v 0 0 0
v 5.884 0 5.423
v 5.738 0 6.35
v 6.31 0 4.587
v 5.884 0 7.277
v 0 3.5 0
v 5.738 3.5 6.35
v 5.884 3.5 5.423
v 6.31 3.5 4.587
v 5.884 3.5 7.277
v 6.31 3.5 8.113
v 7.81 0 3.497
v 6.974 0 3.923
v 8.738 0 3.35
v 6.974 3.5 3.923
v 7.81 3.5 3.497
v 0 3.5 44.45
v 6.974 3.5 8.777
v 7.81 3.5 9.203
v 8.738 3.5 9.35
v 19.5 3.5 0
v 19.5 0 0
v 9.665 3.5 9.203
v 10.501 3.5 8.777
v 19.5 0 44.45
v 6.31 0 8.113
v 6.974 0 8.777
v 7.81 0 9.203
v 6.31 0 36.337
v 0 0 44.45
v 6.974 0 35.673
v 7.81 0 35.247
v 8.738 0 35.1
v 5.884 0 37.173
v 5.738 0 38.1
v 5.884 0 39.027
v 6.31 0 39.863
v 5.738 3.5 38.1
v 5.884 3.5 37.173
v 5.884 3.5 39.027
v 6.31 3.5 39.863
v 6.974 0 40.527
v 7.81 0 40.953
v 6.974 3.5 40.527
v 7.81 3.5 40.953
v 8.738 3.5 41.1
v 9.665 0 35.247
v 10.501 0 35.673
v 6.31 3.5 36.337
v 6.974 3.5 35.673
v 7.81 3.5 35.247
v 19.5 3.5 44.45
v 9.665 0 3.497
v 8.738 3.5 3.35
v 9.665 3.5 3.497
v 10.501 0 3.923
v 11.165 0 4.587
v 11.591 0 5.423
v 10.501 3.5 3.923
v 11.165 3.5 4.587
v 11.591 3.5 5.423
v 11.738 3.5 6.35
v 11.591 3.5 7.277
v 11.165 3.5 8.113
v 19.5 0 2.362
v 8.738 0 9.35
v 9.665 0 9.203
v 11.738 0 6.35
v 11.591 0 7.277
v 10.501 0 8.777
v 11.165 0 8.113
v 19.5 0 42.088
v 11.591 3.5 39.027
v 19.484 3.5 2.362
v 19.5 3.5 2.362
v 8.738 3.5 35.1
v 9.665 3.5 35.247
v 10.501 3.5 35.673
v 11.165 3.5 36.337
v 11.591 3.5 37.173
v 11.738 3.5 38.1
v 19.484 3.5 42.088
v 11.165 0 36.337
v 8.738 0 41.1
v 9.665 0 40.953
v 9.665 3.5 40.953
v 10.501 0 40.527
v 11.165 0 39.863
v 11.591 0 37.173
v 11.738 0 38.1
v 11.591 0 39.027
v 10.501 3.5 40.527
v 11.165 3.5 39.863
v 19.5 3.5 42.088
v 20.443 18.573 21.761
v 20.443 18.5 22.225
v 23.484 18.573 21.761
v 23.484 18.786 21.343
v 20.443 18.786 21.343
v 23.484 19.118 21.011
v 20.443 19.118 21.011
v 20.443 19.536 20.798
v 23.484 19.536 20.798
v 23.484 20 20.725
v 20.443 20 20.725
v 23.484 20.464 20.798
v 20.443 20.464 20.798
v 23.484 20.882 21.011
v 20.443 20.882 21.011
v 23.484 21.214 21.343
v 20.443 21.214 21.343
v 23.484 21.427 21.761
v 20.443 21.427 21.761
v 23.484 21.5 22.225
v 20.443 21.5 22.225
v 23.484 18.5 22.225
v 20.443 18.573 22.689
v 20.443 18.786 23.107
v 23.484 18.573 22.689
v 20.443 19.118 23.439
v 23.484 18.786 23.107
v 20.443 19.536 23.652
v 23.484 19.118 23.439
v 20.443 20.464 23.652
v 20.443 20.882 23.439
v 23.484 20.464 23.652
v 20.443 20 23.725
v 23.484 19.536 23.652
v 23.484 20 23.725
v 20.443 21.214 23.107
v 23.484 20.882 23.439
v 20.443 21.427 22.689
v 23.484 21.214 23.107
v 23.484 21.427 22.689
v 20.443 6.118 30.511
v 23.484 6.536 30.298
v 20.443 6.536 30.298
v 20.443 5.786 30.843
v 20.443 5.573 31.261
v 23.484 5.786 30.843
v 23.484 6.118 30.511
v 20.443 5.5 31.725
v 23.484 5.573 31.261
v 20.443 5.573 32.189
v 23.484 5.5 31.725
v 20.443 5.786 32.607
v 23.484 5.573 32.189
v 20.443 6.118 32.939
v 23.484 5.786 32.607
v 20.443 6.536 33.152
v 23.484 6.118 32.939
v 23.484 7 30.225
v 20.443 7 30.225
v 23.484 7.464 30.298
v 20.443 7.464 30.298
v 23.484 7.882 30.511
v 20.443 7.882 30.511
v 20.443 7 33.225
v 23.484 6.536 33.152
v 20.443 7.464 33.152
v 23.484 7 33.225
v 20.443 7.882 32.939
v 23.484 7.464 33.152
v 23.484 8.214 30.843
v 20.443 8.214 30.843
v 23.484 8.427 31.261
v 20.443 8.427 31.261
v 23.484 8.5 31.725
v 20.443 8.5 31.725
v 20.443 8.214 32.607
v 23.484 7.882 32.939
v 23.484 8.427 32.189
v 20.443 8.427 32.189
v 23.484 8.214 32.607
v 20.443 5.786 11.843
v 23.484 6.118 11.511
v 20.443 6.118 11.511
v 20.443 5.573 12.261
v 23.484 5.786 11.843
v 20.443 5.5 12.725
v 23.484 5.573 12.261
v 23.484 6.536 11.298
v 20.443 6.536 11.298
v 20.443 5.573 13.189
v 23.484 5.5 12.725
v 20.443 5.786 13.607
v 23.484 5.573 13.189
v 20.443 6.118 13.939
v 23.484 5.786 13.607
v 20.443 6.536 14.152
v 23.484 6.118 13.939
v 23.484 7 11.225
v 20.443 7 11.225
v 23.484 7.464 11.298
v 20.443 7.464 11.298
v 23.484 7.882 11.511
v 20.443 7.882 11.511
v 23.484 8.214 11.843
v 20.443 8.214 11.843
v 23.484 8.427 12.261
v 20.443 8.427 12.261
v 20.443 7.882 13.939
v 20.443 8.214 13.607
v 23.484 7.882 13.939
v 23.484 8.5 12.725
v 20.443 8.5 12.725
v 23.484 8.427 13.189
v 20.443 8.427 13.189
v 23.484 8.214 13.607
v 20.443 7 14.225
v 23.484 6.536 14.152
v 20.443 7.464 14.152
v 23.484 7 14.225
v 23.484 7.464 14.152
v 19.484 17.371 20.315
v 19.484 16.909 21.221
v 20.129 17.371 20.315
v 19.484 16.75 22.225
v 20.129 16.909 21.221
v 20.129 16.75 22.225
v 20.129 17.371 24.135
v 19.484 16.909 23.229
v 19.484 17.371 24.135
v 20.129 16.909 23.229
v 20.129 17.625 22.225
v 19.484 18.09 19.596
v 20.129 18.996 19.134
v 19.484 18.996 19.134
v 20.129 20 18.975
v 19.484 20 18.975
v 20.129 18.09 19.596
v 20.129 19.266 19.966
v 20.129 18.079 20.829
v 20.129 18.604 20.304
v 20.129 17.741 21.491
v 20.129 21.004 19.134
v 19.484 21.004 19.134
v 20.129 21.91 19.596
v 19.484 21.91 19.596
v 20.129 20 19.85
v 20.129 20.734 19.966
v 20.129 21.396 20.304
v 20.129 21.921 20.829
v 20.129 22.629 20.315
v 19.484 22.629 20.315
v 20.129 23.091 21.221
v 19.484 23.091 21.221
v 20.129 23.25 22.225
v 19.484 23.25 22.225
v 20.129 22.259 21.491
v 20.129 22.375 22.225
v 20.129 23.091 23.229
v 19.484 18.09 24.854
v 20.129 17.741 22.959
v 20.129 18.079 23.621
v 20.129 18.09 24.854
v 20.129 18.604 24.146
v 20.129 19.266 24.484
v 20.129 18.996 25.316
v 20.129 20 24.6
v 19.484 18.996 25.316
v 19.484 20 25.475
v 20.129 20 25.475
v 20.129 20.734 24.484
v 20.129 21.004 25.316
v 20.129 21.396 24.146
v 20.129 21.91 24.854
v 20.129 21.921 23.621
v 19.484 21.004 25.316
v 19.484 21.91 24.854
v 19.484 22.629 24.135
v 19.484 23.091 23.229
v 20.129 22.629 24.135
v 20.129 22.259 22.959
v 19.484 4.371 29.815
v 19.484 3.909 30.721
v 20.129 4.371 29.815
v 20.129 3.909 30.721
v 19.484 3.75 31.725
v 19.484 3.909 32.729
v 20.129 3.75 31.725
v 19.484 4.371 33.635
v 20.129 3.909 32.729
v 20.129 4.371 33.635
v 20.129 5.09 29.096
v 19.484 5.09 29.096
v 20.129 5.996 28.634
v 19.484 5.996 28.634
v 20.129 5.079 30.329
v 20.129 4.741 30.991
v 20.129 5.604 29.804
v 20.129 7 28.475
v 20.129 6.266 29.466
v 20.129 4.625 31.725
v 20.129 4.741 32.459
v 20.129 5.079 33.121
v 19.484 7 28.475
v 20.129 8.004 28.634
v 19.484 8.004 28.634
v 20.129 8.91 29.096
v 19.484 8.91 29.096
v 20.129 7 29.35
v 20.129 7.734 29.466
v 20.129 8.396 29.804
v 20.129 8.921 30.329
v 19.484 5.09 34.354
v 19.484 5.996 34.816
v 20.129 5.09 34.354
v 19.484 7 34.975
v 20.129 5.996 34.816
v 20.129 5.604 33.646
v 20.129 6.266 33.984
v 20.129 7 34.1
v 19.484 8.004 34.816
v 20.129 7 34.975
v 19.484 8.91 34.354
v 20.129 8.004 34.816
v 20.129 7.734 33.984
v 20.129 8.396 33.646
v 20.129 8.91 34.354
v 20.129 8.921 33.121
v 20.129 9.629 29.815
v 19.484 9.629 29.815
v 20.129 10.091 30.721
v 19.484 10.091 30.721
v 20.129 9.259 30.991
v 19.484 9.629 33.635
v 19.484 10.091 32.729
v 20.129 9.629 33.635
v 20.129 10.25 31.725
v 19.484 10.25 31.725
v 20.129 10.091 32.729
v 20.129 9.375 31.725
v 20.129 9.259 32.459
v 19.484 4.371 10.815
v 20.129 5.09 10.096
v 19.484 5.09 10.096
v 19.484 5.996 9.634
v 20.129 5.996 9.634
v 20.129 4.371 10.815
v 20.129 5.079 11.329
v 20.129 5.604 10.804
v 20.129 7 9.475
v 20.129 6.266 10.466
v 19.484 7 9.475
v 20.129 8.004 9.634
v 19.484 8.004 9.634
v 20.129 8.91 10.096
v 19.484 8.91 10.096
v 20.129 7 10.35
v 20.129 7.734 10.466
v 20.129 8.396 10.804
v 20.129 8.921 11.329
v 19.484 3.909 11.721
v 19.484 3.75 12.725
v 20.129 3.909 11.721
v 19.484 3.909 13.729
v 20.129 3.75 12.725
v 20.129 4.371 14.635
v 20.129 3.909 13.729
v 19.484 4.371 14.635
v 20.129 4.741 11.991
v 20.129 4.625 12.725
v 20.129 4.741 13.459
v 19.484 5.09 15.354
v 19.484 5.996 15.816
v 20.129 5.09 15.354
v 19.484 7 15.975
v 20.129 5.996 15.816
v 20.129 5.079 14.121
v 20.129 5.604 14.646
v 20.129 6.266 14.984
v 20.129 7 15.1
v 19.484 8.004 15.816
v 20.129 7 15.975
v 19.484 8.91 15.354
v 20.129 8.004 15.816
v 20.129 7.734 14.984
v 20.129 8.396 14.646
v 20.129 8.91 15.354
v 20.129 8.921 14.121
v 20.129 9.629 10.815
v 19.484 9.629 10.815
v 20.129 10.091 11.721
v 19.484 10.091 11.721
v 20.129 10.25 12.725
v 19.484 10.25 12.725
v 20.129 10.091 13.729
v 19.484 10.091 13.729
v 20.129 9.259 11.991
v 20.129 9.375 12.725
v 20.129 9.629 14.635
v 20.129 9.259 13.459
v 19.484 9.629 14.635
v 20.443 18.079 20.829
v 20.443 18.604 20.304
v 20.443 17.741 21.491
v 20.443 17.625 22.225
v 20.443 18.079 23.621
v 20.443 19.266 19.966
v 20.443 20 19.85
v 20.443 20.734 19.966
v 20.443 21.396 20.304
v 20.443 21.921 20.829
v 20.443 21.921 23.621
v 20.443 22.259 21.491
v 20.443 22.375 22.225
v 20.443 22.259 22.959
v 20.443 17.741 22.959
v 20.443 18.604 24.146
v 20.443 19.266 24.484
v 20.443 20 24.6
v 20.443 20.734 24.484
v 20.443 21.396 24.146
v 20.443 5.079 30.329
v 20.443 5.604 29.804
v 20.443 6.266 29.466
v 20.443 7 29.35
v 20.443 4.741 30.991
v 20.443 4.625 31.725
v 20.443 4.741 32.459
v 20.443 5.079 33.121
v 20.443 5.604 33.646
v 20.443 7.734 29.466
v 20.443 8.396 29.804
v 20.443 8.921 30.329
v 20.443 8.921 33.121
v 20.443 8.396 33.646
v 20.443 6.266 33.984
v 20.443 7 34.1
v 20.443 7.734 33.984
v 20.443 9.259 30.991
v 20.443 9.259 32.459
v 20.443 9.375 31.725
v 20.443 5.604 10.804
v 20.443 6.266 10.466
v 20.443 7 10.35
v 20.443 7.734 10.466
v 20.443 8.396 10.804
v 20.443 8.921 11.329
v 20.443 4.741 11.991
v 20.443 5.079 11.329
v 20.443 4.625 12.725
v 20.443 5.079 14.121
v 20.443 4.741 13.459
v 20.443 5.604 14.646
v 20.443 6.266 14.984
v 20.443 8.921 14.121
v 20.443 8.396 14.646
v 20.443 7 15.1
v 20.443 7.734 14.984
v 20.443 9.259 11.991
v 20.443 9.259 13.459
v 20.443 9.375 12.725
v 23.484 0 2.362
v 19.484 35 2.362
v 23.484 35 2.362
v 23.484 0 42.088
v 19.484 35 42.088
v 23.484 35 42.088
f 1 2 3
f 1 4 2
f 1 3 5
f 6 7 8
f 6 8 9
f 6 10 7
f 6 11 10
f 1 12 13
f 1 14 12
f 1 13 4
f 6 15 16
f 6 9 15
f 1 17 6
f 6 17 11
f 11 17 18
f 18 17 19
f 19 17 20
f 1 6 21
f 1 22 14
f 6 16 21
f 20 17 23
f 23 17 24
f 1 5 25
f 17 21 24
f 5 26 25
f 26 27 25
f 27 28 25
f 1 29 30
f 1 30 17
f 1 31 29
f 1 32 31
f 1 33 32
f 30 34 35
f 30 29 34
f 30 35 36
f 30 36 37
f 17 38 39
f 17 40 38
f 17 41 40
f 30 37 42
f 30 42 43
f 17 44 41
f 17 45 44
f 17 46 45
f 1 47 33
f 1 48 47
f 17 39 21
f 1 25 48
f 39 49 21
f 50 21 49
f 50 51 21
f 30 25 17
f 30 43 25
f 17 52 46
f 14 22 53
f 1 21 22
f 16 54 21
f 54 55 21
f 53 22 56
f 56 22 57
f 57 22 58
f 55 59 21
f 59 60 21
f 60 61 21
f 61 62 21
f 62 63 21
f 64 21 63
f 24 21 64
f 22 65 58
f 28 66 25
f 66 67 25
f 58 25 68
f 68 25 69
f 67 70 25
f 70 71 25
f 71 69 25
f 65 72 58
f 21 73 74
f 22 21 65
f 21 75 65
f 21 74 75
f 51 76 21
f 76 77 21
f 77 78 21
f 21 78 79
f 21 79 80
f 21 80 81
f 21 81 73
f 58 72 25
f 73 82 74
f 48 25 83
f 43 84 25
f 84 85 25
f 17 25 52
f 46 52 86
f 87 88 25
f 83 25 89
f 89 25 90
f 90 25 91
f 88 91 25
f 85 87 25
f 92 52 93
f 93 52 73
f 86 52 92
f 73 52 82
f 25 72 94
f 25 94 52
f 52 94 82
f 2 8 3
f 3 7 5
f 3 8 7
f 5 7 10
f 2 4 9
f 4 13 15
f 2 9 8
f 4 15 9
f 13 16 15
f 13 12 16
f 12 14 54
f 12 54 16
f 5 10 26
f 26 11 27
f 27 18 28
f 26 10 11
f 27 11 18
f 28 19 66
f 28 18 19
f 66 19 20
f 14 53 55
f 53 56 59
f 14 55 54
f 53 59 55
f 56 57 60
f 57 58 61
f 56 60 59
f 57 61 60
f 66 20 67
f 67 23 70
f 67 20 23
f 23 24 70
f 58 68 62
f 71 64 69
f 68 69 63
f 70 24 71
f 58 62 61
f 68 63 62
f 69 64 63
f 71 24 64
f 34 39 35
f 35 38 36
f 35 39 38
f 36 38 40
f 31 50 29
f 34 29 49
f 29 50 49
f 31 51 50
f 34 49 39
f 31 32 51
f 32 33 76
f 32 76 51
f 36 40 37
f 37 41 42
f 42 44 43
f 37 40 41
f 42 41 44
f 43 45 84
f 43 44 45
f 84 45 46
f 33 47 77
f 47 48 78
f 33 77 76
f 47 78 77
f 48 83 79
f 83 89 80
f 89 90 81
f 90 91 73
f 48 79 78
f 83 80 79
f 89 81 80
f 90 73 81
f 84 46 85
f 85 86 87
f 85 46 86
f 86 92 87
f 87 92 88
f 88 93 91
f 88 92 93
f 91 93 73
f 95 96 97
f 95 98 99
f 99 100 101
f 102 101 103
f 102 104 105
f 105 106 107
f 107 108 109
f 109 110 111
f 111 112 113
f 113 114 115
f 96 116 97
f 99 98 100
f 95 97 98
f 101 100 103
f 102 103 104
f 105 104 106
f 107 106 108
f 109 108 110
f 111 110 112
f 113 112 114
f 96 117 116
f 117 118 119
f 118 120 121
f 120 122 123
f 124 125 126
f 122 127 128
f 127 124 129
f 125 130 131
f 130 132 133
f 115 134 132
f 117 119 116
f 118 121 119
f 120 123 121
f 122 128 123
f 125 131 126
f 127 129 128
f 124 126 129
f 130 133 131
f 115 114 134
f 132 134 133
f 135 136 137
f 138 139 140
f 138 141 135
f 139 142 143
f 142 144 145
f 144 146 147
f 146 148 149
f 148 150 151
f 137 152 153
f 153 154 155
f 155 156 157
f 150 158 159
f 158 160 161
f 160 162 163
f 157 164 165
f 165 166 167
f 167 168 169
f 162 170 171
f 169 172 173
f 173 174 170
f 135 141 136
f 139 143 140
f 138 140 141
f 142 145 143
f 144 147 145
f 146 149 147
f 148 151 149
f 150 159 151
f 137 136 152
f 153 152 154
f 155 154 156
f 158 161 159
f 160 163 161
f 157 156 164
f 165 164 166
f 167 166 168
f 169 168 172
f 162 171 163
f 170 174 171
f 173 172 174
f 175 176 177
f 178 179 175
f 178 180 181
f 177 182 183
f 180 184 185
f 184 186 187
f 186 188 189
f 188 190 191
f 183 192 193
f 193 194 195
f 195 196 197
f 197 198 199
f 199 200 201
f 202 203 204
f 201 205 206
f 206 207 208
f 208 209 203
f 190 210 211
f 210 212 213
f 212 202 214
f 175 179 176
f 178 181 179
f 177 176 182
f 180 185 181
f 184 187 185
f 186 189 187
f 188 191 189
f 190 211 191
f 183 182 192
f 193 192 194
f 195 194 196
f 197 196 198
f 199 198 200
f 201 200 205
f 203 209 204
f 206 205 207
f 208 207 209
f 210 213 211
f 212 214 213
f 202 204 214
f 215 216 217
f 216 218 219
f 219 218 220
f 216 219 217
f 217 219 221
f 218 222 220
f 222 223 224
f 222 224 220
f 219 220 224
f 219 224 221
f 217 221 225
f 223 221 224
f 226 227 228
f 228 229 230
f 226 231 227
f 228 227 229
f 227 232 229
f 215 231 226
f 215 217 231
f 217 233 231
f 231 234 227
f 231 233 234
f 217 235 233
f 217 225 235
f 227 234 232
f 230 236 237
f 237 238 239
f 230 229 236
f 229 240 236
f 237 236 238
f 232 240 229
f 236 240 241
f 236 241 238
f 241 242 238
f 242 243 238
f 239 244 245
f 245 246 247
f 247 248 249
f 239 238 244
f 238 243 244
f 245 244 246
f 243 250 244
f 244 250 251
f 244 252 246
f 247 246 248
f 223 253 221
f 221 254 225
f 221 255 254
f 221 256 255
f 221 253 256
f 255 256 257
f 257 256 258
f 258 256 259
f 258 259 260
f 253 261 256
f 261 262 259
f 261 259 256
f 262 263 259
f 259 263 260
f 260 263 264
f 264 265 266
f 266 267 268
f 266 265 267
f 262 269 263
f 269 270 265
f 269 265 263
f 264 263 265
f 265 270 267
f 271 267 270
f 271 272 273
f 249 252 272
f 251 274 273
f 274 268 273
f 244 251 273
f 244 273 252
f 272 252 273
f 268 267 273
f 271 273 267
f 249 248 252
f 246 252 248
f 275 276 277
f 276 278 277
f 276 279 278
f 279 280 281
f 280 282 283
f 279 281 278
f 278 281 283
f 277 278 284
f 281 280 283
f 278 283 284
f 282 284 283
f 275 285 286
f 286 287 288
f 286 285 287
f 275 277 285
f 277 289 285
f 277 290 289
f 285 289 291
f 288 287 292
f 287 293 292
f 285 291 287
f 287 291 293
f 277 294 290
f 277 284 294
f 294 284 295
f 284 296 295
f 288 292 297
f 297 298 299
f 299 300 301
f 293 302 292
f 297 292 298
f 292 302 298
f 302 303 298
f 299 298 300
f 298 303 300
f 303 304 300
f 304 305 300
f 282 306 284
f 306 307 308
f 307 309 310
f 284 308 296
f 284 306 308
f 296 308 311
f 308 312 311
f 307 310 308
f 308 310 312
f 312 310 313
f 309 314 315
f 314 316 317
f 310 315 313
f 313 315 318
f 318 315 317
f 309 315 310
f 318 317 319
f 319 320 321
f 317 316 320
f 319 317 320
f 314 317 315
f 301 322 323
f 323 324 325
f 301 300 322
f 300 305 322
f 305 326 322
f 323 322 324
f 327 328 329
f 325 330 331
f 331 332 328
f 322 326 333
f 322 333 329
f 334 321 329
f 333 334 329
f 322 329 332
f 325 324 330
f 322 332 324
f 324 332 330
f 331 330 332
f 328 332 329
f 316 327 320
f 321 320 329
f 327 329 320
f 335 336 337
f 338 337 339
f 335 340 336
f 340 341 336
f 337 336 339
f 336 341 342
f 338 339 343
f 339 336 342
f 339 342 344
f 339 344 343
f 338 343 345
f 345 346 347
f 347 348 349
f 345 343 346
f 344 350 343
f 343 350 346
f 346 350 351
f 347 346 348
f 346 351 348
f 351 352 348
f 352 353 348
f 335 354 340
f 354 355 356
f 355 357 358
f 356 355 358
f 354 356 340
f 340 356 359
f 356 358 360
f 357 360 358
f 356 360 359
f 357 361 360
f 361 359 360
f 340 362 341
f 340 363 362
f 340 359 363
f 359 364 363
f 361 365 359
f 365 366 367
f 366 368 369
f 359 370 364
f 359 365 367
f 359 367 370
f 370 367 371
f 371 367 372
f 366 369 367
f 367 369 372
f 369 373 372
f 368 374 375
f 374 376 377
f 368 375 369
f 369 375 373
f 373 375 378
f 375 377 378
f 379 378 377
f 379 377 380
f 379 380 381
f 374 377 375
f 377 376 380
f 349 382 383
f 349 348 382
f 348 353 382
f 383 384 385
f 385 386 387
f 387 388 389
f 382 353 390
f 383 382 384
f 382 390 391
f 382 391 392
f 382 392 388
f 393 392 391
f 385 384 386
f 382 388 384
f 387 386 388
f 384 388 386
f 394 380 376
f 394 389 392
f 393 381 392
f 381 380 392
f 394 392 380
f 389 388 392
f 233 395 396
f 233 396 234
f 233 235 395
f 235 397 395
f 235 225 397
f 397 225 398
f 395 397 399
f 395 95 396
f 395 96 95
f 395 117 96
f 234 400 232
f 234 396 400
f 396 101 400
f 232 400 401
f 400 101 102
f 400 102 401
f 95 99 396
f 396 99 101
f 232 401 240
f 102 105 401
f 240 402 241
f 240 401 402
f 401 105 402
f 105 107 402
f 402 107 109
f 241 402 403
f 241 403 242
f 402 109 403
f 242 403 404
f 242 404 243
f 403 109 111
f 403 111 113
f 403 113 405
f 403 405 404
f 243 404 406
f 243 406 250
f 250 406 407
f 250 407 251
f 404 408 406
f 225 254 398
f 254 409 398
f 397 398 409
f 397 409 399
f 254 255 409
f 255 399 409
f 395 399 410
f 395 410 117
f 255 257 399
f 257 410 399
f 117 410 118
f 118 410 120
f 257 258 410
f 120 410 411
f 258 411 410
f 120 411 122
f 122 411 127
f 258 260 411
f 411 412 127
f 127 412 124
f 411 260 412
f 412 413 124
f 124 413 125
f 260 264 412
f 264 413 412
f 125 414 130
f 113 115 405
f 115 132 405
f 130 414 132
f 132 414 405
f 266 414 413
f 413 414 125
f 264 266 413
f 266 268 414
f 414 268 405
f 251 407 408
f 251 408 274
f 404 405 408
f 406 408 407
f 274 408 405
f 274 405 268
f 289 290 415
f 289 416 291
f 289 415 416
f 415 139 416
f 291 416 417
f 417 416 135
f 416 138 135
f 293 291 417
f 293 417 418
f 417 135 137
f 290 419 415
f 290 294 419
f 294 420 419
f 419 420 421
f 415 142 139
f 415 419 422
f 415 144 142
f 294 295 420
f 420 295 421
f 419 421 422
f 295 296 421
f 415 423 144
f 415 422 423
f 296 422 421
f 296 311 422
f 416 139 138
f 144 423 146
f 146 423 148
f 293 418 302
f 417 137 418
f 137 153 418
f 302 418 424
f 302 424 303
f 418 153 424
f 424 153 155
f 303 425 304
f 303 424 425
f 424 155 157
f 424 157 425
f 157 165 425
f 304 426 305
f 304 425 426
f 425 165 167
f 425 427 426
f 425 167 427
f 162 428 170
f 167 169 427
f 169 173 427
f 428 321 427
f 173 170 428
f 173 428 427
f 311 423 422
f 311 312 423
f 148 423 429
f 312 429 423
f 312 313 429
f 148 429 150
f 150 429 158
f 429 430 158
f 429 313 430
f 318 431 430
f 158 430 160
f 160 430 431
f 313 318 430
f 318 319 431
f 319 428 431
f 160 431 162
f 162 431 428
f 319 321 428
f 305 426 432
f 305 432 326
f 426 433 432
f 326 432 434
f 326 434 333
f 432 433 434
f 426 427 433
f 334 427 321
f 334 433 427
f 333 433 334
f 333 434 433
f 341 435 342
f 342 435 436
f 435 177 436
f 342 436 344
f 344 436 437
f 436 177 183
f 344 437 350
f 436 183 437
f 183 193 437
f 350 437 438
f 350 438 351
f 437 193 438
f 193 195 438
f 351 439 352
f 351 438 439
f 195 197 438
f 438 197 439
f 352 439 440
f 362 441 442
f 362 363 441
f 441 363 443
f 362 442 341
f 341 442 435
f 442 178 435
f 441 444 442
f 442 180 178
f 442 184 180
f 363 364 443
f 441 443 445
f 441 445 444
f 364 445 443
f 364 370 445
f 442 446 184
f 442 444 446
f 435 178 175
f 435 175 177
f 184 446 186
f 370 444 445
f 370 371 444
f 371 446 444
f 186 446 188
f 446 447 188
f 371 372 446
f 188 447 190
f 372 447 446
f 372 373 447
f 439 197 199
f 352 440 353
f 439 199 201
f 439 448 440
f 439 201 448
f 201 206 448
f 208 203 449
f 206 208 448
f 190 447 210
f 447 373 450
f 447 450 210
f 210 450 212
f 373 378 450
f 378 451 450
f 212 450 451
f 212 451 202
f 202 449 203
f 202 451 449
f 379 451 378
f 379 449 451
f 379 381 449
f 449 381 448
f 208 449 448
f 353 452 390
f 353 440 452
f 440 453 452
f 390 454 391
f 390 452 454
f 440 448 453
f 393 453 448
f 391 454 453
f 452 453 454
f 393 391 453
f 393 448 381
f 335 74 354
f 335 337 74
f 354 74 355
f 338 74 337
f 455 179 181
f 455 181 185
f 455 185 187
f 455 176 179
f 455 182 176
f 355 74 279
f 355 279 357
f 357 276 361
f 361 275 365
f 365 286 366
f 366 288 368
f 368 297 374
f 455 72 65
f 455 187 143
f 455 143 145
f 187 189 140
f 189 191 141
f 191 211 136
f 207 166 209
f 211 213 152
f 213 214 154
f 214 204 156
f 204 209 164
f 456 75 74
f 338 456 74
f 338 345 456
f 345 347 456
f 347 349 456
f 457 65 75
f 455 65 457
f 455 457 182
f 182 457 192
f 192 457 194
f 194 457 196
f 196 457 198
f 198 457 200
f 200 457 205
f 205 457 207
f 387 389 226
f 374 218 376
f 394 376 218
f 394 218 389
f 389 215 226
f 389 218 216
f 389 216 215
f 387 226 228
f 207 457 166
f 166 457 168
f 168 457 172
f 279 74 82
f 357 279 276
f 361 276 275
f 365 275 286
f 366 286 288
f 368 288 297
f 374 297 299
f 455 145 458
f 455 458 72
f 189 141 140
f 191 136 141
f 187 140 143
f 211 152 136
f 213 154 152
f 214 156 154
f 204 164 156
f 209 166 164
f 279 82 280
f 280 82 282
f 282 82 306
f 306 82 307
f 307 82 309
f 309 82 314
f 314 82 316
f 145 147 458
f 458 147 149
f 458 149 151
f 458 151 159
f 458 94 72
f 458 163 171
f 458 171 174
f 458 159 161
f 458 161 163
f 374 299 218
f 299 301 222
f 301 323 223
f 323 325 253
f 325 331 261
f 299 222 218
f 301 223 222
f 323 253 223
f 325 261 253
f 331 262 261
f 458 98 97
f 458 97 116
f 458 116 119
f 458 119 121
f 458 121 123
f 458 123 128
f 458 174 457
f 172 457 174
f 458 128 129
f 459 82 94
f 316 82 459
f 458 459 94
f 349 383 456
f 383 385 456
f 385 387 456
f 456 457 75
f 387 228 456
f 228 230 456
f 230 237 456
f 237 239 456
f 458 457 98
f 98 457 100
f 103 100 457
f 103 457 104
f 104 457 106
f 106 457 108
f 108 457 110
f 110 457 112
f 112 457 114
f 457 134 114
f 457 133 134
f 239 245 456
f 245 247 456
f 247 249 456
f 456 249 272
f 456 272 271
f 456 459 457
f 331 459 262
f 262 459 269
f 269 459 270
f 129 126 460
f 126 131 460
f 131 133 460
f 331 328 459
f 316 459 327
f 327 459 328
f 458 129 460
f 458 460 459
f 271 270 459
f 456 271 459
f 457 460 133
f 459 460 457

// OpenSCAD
// file: mounting.scad
e = 1/64;

slot_width = 4.0;
L_leg_length = 11; // possibly 12
extent_length = 14.0;

center_diameter = 8.5;


module ridge_outline () {

  both_inset = 0.5;
  inset = both_inset / 2;
  ridge_width = slot_width - 0.5;
  half_ridge_width = ridge_width / 2;

  L_vert_to_horiz_start = 6.5; // measured is 7.0

  ridge_center_radius = 5.0 / 2;

  rotate([0, 0, 180])
  union () {
    square([ridge_width, L_vert_to_horiz_start + half_ridge_width]);
    translate([half_ridge_width, L_vert_to_horiz_start + half_ridge_width]) {
      circle(d = ridge_width, $fn = 48);
    }

    square([L_vert_to_horiz_start + half_ridge_width, ridge_width]);
    translate([L_vert_to_horiz_start + half_ridge_width, half_ridge_width]) {
      circle(d = ridge_width, $fn = 48);
    }

    translate([-(ridge_center_radius - ridge_width) + both_inset,
               -(ridge_center_radius - ridge_width) + both_inset]) {
      circle(r = ridge_center_radius, $fn = 48);
    }
  }
}

module generate_ridge (height = 2.0 + 1.5) {

  linear_extrude(h = height) {
    ridge_outline();
  }

}


if (!true) {
  //ridge_outline();
  generate_ridge(height = 2.0 + 1.5 + 0.5);
 } else {

  h = 3;
  translate ([-3/2,-3/2,0]) cube([10 + 3, 10 + 3, h]);
  translate ([10, 10, h-e]) { generate_ridge(height = 2.0 + 1.5 + 0.5); }

 }
// main file
use <mounting.scad>

show_assembly = !true;

e = 1/64;

//universal_customized_stl = "YS25_0802_10inch_rack.stl";
universal_customized_stl = "universal_10inch_rack-xikestor8310.stl";

width = 207;
depth = 136;
height = 35;

rackmount_height = 44.45; // 1U

mount_front_screws__from_front = 7.0;
mount_front_screws__from_bottom = 8.0;
mount_front_screws__spacing = 19.0;

mount_front_screws__hole1_height = (1/2) * (rackmount_height - height) + mount_front_screws__from_bottom;
mount_front_screws__hole2_height = mount_front_screws__hole1_height + mount_front_screws__spacing;

mount_back_screw__from_front = 20.0;
mount_back_screw__from_bottom = height / 2;
mount_back_screw__height = (1/2) * (rackmount_height - height) + mount_back_screw__from_bottom;

mount_height = height + (1/2)*(rackmount_height - height);
//mount_height = height;

mount_height__from_1U_bottom = (1/2)*(rackmount_height - mount_height);
mount_length = 30.0 + 5.0;

ear_face_thickness = 3.5;
ear_mount_thickness = 4.0;

/* [Hidden] */

rackmount_hole_diameter = 6;
rackmount_hole_spacing_across = 236.525;
rackmount_opening_spacing = 222.25;
rackmount_hole_1_height = 12.7 / 2;
rackmount_hole_2_height = rackmount_height - rackmount_hole_1_height;
rackmount_strip_width = 15.875;
rackmount__end_to_end = 254.0;

rail_hole_diameter = 6.0;
rail_hole_center_inset = (1/2) * (rackmount__end_to_end - rackmount_hole_spacing_across);

assert((rackmount_strip_width + rackmount_opening_spacing + rackmount_strip_width ) == rackmount__end_to_end, "components do not sum to Total .");



ear_overlap_opening = (1/2) * (rackmount_opening_spacing - width) ;
ear_face_length = rackmount_strip_width + ear_overlap_opening - ear_mount_thickness;



// STL offsets

module single_look() {
  %sks8310();
  //customized_universal();
}

module sks8310 () {
  translate([width, 0, 0]) rotate ([-90, 180, 0])
    difference() {
    //color("darkblue")
    cube ([width, depth, height]);

  }
}

module mount_screw_hole (diameter = 3, height = 10) {
  $fn = 20;
  r1 = diameter/2;
  r2 = r1 + 1.75;
  h2 = 0.66;
  r3 = (r1+r2)/2;
  h3 = h2/2;
  translate([0,-e,0]) rotate([-90, 0, 0]) {
    cylinder(h = height, r = r1, center = false);
    cylinder(h = h2, r = r2, center = false);
    translate([0,0, h2-e])
      cylinder(h = h3, r = r3, center = false);
  }

}


module rail_hole (diameter = rackmount_hole_diameter, height = 10) {
  $fn = 20;
  translate([0,-e,0]) rotate([-90, 0, 0])
  cylinder(h = height, r = diameter/2, center = false);

}

module left_ear_10inch() {

  face_height = rackmount_height;
  face_width = ear_face_length;
  face_thickness = ear_face_thickness;

  bracket_length = mount_length;
  bracket_height = mount_height;
  delta_y = (1/2)*(bracket_height - height);
  bracket_thickness = ear_mount_thickness;

  rail1_x = rail_hole_center_inset;
  rail1_y = rackmount_hole_1_height;

  rail2_x = rail_hole_center_inset;
  rail2_y = rackmount_hole_2_height;


  front1_x = mount_front_screws__from_front;
  front1_y = mount_front_screws__from_bottom + delta_y;

  front2_x = mount_front_screws__from_front;
  front2_y = front1_y + mount_front_screws__spacing;

  back_x = mount_back_screw__from_front;
  back_y = mount_back_screw__from_bottom + delta_y;



  // ear face
  difference() {

    cube([face_width, face_thickness, face_height], center = false);
    // punch holes
    translate([rail1_x, 0 , rail1_y])
      rail_hole();

    translate([rail2_x, 0 , rail2_y])
      rail_hole();


  }

  // ear along mount (bracket into switch)
  start_mount = face_width;
  translate([start_mount - e, 0, mount_height__from_1U_bottom]) rotate([0,0,90])
  mirror([0, 1, 0])
  difference() {

    cube([bracket_length, bracket_thickness, bracket_height], center = false);

    // punch holes
    translate([front1_x, 0 , front1_y])
      mount_screw_hole();

    translate([front2_x, 0 , front2_y])
      mount_screw_hole();

    translate([back_x, 0 , back_y])
      mount_screw_hole();

  }



}


module mount_post () {

  support_height=5;
  support_leg = 16;
  union() {

    translate([2, -2, -(support_height/2)+e])
      rotate([0,0,0])
      cube([support_leg, support_leg, support_height], center = true);
    generate_ridge() {}
  }
}

bar_19inch_width = 19 * 25.4;
center_to_center_19inch = 18.3125 * 25.4;
interior_rack_spacing_19inch = 17.75 * 25.4;

bar_10inch_width = 10 * 25.4;
center_to_center_10inch = 9.3125 * 25.4;
interior_rack_spacing_10inch = 8.75 * 25.4;

// amount to shorten each ear (half on either side)
half_difference_19inch_to_10inch = ((19 - 10) * 25.4)/2;
half_ear_diff = half_difference_19inch_to_10inch / 2;


fudge = 0.2;

module bar_19inch() {
  y_depth = 5;
  z_height = 10;

  difference() {
    cube([bar_19inch_width, y_depth, z_height]);
    translate([(bar_19inch_width - center_to_center_19inch)/2, -e, z_height/2]) {
      rotate([-90,0,0]) cylinder(r = 6/2, h = y_depth + 20);
      translate([center_to_center_19inch,0,0])
      rotate([-90,0,0]) cylinder(r = 6/2, h = y_depth + 2*e);
    }
  }
}

module bar_10inch() {
  y_depth = 5;
  z_height = 10;

  difference() {
    cube([bar_10inch_width, y_depth, z_height]);
    translate([(bar_10inch_width - center_to_center_10inch)/2, -e, z_height/2]) {
      rotate([-90,0,0]) cylinder(r = 6/2, h = y_depth + 20);
      translate([center_to_center_10inch,0,0])
      rotate([-90,0,0]) cylinder(r = 6/2, h = y_depth + 2*e);
    }
  }
}


module customized_universal () {
  translate([0, 0, 0]) rotate([0, 0, 0])
  difference() {
    import(universal_customized_stl);

    // poke a hole to insert barrel connector for DC power
    translate([25, height * (2/3), -5]) rotate([0, -30, 0])
      cylinder(h = 40, r = 10 * (1/2), center = false);

  }

}

module assembly_10inch() {

  ys_y_offset = (44.45 - height) / 2;
  ys_x_offset = (bar_10inch_width - width) / 2;

  translate([0, 0, 0]) color("grey") customized_universal();

  %translate([ys_x_offset, ys_y_offset, 0])
     color("darkblue", alpha=0.8)
     sks8310();

   //translate([-2, -6, 33-1.5])
  translate([0.0, 1.5, 0])
  rotate([-90,0,0])
    %color("red", alpha= 0.85) bar_10inch();

}



if (show_assembly) {
  //assembly_original();
  assembly_10inch();
} else {
  //single_look();
  //  sks8310();
  // rotate([90, 0, 0])
  left_ear_10inch();

  //mount_screw_hole();
}
